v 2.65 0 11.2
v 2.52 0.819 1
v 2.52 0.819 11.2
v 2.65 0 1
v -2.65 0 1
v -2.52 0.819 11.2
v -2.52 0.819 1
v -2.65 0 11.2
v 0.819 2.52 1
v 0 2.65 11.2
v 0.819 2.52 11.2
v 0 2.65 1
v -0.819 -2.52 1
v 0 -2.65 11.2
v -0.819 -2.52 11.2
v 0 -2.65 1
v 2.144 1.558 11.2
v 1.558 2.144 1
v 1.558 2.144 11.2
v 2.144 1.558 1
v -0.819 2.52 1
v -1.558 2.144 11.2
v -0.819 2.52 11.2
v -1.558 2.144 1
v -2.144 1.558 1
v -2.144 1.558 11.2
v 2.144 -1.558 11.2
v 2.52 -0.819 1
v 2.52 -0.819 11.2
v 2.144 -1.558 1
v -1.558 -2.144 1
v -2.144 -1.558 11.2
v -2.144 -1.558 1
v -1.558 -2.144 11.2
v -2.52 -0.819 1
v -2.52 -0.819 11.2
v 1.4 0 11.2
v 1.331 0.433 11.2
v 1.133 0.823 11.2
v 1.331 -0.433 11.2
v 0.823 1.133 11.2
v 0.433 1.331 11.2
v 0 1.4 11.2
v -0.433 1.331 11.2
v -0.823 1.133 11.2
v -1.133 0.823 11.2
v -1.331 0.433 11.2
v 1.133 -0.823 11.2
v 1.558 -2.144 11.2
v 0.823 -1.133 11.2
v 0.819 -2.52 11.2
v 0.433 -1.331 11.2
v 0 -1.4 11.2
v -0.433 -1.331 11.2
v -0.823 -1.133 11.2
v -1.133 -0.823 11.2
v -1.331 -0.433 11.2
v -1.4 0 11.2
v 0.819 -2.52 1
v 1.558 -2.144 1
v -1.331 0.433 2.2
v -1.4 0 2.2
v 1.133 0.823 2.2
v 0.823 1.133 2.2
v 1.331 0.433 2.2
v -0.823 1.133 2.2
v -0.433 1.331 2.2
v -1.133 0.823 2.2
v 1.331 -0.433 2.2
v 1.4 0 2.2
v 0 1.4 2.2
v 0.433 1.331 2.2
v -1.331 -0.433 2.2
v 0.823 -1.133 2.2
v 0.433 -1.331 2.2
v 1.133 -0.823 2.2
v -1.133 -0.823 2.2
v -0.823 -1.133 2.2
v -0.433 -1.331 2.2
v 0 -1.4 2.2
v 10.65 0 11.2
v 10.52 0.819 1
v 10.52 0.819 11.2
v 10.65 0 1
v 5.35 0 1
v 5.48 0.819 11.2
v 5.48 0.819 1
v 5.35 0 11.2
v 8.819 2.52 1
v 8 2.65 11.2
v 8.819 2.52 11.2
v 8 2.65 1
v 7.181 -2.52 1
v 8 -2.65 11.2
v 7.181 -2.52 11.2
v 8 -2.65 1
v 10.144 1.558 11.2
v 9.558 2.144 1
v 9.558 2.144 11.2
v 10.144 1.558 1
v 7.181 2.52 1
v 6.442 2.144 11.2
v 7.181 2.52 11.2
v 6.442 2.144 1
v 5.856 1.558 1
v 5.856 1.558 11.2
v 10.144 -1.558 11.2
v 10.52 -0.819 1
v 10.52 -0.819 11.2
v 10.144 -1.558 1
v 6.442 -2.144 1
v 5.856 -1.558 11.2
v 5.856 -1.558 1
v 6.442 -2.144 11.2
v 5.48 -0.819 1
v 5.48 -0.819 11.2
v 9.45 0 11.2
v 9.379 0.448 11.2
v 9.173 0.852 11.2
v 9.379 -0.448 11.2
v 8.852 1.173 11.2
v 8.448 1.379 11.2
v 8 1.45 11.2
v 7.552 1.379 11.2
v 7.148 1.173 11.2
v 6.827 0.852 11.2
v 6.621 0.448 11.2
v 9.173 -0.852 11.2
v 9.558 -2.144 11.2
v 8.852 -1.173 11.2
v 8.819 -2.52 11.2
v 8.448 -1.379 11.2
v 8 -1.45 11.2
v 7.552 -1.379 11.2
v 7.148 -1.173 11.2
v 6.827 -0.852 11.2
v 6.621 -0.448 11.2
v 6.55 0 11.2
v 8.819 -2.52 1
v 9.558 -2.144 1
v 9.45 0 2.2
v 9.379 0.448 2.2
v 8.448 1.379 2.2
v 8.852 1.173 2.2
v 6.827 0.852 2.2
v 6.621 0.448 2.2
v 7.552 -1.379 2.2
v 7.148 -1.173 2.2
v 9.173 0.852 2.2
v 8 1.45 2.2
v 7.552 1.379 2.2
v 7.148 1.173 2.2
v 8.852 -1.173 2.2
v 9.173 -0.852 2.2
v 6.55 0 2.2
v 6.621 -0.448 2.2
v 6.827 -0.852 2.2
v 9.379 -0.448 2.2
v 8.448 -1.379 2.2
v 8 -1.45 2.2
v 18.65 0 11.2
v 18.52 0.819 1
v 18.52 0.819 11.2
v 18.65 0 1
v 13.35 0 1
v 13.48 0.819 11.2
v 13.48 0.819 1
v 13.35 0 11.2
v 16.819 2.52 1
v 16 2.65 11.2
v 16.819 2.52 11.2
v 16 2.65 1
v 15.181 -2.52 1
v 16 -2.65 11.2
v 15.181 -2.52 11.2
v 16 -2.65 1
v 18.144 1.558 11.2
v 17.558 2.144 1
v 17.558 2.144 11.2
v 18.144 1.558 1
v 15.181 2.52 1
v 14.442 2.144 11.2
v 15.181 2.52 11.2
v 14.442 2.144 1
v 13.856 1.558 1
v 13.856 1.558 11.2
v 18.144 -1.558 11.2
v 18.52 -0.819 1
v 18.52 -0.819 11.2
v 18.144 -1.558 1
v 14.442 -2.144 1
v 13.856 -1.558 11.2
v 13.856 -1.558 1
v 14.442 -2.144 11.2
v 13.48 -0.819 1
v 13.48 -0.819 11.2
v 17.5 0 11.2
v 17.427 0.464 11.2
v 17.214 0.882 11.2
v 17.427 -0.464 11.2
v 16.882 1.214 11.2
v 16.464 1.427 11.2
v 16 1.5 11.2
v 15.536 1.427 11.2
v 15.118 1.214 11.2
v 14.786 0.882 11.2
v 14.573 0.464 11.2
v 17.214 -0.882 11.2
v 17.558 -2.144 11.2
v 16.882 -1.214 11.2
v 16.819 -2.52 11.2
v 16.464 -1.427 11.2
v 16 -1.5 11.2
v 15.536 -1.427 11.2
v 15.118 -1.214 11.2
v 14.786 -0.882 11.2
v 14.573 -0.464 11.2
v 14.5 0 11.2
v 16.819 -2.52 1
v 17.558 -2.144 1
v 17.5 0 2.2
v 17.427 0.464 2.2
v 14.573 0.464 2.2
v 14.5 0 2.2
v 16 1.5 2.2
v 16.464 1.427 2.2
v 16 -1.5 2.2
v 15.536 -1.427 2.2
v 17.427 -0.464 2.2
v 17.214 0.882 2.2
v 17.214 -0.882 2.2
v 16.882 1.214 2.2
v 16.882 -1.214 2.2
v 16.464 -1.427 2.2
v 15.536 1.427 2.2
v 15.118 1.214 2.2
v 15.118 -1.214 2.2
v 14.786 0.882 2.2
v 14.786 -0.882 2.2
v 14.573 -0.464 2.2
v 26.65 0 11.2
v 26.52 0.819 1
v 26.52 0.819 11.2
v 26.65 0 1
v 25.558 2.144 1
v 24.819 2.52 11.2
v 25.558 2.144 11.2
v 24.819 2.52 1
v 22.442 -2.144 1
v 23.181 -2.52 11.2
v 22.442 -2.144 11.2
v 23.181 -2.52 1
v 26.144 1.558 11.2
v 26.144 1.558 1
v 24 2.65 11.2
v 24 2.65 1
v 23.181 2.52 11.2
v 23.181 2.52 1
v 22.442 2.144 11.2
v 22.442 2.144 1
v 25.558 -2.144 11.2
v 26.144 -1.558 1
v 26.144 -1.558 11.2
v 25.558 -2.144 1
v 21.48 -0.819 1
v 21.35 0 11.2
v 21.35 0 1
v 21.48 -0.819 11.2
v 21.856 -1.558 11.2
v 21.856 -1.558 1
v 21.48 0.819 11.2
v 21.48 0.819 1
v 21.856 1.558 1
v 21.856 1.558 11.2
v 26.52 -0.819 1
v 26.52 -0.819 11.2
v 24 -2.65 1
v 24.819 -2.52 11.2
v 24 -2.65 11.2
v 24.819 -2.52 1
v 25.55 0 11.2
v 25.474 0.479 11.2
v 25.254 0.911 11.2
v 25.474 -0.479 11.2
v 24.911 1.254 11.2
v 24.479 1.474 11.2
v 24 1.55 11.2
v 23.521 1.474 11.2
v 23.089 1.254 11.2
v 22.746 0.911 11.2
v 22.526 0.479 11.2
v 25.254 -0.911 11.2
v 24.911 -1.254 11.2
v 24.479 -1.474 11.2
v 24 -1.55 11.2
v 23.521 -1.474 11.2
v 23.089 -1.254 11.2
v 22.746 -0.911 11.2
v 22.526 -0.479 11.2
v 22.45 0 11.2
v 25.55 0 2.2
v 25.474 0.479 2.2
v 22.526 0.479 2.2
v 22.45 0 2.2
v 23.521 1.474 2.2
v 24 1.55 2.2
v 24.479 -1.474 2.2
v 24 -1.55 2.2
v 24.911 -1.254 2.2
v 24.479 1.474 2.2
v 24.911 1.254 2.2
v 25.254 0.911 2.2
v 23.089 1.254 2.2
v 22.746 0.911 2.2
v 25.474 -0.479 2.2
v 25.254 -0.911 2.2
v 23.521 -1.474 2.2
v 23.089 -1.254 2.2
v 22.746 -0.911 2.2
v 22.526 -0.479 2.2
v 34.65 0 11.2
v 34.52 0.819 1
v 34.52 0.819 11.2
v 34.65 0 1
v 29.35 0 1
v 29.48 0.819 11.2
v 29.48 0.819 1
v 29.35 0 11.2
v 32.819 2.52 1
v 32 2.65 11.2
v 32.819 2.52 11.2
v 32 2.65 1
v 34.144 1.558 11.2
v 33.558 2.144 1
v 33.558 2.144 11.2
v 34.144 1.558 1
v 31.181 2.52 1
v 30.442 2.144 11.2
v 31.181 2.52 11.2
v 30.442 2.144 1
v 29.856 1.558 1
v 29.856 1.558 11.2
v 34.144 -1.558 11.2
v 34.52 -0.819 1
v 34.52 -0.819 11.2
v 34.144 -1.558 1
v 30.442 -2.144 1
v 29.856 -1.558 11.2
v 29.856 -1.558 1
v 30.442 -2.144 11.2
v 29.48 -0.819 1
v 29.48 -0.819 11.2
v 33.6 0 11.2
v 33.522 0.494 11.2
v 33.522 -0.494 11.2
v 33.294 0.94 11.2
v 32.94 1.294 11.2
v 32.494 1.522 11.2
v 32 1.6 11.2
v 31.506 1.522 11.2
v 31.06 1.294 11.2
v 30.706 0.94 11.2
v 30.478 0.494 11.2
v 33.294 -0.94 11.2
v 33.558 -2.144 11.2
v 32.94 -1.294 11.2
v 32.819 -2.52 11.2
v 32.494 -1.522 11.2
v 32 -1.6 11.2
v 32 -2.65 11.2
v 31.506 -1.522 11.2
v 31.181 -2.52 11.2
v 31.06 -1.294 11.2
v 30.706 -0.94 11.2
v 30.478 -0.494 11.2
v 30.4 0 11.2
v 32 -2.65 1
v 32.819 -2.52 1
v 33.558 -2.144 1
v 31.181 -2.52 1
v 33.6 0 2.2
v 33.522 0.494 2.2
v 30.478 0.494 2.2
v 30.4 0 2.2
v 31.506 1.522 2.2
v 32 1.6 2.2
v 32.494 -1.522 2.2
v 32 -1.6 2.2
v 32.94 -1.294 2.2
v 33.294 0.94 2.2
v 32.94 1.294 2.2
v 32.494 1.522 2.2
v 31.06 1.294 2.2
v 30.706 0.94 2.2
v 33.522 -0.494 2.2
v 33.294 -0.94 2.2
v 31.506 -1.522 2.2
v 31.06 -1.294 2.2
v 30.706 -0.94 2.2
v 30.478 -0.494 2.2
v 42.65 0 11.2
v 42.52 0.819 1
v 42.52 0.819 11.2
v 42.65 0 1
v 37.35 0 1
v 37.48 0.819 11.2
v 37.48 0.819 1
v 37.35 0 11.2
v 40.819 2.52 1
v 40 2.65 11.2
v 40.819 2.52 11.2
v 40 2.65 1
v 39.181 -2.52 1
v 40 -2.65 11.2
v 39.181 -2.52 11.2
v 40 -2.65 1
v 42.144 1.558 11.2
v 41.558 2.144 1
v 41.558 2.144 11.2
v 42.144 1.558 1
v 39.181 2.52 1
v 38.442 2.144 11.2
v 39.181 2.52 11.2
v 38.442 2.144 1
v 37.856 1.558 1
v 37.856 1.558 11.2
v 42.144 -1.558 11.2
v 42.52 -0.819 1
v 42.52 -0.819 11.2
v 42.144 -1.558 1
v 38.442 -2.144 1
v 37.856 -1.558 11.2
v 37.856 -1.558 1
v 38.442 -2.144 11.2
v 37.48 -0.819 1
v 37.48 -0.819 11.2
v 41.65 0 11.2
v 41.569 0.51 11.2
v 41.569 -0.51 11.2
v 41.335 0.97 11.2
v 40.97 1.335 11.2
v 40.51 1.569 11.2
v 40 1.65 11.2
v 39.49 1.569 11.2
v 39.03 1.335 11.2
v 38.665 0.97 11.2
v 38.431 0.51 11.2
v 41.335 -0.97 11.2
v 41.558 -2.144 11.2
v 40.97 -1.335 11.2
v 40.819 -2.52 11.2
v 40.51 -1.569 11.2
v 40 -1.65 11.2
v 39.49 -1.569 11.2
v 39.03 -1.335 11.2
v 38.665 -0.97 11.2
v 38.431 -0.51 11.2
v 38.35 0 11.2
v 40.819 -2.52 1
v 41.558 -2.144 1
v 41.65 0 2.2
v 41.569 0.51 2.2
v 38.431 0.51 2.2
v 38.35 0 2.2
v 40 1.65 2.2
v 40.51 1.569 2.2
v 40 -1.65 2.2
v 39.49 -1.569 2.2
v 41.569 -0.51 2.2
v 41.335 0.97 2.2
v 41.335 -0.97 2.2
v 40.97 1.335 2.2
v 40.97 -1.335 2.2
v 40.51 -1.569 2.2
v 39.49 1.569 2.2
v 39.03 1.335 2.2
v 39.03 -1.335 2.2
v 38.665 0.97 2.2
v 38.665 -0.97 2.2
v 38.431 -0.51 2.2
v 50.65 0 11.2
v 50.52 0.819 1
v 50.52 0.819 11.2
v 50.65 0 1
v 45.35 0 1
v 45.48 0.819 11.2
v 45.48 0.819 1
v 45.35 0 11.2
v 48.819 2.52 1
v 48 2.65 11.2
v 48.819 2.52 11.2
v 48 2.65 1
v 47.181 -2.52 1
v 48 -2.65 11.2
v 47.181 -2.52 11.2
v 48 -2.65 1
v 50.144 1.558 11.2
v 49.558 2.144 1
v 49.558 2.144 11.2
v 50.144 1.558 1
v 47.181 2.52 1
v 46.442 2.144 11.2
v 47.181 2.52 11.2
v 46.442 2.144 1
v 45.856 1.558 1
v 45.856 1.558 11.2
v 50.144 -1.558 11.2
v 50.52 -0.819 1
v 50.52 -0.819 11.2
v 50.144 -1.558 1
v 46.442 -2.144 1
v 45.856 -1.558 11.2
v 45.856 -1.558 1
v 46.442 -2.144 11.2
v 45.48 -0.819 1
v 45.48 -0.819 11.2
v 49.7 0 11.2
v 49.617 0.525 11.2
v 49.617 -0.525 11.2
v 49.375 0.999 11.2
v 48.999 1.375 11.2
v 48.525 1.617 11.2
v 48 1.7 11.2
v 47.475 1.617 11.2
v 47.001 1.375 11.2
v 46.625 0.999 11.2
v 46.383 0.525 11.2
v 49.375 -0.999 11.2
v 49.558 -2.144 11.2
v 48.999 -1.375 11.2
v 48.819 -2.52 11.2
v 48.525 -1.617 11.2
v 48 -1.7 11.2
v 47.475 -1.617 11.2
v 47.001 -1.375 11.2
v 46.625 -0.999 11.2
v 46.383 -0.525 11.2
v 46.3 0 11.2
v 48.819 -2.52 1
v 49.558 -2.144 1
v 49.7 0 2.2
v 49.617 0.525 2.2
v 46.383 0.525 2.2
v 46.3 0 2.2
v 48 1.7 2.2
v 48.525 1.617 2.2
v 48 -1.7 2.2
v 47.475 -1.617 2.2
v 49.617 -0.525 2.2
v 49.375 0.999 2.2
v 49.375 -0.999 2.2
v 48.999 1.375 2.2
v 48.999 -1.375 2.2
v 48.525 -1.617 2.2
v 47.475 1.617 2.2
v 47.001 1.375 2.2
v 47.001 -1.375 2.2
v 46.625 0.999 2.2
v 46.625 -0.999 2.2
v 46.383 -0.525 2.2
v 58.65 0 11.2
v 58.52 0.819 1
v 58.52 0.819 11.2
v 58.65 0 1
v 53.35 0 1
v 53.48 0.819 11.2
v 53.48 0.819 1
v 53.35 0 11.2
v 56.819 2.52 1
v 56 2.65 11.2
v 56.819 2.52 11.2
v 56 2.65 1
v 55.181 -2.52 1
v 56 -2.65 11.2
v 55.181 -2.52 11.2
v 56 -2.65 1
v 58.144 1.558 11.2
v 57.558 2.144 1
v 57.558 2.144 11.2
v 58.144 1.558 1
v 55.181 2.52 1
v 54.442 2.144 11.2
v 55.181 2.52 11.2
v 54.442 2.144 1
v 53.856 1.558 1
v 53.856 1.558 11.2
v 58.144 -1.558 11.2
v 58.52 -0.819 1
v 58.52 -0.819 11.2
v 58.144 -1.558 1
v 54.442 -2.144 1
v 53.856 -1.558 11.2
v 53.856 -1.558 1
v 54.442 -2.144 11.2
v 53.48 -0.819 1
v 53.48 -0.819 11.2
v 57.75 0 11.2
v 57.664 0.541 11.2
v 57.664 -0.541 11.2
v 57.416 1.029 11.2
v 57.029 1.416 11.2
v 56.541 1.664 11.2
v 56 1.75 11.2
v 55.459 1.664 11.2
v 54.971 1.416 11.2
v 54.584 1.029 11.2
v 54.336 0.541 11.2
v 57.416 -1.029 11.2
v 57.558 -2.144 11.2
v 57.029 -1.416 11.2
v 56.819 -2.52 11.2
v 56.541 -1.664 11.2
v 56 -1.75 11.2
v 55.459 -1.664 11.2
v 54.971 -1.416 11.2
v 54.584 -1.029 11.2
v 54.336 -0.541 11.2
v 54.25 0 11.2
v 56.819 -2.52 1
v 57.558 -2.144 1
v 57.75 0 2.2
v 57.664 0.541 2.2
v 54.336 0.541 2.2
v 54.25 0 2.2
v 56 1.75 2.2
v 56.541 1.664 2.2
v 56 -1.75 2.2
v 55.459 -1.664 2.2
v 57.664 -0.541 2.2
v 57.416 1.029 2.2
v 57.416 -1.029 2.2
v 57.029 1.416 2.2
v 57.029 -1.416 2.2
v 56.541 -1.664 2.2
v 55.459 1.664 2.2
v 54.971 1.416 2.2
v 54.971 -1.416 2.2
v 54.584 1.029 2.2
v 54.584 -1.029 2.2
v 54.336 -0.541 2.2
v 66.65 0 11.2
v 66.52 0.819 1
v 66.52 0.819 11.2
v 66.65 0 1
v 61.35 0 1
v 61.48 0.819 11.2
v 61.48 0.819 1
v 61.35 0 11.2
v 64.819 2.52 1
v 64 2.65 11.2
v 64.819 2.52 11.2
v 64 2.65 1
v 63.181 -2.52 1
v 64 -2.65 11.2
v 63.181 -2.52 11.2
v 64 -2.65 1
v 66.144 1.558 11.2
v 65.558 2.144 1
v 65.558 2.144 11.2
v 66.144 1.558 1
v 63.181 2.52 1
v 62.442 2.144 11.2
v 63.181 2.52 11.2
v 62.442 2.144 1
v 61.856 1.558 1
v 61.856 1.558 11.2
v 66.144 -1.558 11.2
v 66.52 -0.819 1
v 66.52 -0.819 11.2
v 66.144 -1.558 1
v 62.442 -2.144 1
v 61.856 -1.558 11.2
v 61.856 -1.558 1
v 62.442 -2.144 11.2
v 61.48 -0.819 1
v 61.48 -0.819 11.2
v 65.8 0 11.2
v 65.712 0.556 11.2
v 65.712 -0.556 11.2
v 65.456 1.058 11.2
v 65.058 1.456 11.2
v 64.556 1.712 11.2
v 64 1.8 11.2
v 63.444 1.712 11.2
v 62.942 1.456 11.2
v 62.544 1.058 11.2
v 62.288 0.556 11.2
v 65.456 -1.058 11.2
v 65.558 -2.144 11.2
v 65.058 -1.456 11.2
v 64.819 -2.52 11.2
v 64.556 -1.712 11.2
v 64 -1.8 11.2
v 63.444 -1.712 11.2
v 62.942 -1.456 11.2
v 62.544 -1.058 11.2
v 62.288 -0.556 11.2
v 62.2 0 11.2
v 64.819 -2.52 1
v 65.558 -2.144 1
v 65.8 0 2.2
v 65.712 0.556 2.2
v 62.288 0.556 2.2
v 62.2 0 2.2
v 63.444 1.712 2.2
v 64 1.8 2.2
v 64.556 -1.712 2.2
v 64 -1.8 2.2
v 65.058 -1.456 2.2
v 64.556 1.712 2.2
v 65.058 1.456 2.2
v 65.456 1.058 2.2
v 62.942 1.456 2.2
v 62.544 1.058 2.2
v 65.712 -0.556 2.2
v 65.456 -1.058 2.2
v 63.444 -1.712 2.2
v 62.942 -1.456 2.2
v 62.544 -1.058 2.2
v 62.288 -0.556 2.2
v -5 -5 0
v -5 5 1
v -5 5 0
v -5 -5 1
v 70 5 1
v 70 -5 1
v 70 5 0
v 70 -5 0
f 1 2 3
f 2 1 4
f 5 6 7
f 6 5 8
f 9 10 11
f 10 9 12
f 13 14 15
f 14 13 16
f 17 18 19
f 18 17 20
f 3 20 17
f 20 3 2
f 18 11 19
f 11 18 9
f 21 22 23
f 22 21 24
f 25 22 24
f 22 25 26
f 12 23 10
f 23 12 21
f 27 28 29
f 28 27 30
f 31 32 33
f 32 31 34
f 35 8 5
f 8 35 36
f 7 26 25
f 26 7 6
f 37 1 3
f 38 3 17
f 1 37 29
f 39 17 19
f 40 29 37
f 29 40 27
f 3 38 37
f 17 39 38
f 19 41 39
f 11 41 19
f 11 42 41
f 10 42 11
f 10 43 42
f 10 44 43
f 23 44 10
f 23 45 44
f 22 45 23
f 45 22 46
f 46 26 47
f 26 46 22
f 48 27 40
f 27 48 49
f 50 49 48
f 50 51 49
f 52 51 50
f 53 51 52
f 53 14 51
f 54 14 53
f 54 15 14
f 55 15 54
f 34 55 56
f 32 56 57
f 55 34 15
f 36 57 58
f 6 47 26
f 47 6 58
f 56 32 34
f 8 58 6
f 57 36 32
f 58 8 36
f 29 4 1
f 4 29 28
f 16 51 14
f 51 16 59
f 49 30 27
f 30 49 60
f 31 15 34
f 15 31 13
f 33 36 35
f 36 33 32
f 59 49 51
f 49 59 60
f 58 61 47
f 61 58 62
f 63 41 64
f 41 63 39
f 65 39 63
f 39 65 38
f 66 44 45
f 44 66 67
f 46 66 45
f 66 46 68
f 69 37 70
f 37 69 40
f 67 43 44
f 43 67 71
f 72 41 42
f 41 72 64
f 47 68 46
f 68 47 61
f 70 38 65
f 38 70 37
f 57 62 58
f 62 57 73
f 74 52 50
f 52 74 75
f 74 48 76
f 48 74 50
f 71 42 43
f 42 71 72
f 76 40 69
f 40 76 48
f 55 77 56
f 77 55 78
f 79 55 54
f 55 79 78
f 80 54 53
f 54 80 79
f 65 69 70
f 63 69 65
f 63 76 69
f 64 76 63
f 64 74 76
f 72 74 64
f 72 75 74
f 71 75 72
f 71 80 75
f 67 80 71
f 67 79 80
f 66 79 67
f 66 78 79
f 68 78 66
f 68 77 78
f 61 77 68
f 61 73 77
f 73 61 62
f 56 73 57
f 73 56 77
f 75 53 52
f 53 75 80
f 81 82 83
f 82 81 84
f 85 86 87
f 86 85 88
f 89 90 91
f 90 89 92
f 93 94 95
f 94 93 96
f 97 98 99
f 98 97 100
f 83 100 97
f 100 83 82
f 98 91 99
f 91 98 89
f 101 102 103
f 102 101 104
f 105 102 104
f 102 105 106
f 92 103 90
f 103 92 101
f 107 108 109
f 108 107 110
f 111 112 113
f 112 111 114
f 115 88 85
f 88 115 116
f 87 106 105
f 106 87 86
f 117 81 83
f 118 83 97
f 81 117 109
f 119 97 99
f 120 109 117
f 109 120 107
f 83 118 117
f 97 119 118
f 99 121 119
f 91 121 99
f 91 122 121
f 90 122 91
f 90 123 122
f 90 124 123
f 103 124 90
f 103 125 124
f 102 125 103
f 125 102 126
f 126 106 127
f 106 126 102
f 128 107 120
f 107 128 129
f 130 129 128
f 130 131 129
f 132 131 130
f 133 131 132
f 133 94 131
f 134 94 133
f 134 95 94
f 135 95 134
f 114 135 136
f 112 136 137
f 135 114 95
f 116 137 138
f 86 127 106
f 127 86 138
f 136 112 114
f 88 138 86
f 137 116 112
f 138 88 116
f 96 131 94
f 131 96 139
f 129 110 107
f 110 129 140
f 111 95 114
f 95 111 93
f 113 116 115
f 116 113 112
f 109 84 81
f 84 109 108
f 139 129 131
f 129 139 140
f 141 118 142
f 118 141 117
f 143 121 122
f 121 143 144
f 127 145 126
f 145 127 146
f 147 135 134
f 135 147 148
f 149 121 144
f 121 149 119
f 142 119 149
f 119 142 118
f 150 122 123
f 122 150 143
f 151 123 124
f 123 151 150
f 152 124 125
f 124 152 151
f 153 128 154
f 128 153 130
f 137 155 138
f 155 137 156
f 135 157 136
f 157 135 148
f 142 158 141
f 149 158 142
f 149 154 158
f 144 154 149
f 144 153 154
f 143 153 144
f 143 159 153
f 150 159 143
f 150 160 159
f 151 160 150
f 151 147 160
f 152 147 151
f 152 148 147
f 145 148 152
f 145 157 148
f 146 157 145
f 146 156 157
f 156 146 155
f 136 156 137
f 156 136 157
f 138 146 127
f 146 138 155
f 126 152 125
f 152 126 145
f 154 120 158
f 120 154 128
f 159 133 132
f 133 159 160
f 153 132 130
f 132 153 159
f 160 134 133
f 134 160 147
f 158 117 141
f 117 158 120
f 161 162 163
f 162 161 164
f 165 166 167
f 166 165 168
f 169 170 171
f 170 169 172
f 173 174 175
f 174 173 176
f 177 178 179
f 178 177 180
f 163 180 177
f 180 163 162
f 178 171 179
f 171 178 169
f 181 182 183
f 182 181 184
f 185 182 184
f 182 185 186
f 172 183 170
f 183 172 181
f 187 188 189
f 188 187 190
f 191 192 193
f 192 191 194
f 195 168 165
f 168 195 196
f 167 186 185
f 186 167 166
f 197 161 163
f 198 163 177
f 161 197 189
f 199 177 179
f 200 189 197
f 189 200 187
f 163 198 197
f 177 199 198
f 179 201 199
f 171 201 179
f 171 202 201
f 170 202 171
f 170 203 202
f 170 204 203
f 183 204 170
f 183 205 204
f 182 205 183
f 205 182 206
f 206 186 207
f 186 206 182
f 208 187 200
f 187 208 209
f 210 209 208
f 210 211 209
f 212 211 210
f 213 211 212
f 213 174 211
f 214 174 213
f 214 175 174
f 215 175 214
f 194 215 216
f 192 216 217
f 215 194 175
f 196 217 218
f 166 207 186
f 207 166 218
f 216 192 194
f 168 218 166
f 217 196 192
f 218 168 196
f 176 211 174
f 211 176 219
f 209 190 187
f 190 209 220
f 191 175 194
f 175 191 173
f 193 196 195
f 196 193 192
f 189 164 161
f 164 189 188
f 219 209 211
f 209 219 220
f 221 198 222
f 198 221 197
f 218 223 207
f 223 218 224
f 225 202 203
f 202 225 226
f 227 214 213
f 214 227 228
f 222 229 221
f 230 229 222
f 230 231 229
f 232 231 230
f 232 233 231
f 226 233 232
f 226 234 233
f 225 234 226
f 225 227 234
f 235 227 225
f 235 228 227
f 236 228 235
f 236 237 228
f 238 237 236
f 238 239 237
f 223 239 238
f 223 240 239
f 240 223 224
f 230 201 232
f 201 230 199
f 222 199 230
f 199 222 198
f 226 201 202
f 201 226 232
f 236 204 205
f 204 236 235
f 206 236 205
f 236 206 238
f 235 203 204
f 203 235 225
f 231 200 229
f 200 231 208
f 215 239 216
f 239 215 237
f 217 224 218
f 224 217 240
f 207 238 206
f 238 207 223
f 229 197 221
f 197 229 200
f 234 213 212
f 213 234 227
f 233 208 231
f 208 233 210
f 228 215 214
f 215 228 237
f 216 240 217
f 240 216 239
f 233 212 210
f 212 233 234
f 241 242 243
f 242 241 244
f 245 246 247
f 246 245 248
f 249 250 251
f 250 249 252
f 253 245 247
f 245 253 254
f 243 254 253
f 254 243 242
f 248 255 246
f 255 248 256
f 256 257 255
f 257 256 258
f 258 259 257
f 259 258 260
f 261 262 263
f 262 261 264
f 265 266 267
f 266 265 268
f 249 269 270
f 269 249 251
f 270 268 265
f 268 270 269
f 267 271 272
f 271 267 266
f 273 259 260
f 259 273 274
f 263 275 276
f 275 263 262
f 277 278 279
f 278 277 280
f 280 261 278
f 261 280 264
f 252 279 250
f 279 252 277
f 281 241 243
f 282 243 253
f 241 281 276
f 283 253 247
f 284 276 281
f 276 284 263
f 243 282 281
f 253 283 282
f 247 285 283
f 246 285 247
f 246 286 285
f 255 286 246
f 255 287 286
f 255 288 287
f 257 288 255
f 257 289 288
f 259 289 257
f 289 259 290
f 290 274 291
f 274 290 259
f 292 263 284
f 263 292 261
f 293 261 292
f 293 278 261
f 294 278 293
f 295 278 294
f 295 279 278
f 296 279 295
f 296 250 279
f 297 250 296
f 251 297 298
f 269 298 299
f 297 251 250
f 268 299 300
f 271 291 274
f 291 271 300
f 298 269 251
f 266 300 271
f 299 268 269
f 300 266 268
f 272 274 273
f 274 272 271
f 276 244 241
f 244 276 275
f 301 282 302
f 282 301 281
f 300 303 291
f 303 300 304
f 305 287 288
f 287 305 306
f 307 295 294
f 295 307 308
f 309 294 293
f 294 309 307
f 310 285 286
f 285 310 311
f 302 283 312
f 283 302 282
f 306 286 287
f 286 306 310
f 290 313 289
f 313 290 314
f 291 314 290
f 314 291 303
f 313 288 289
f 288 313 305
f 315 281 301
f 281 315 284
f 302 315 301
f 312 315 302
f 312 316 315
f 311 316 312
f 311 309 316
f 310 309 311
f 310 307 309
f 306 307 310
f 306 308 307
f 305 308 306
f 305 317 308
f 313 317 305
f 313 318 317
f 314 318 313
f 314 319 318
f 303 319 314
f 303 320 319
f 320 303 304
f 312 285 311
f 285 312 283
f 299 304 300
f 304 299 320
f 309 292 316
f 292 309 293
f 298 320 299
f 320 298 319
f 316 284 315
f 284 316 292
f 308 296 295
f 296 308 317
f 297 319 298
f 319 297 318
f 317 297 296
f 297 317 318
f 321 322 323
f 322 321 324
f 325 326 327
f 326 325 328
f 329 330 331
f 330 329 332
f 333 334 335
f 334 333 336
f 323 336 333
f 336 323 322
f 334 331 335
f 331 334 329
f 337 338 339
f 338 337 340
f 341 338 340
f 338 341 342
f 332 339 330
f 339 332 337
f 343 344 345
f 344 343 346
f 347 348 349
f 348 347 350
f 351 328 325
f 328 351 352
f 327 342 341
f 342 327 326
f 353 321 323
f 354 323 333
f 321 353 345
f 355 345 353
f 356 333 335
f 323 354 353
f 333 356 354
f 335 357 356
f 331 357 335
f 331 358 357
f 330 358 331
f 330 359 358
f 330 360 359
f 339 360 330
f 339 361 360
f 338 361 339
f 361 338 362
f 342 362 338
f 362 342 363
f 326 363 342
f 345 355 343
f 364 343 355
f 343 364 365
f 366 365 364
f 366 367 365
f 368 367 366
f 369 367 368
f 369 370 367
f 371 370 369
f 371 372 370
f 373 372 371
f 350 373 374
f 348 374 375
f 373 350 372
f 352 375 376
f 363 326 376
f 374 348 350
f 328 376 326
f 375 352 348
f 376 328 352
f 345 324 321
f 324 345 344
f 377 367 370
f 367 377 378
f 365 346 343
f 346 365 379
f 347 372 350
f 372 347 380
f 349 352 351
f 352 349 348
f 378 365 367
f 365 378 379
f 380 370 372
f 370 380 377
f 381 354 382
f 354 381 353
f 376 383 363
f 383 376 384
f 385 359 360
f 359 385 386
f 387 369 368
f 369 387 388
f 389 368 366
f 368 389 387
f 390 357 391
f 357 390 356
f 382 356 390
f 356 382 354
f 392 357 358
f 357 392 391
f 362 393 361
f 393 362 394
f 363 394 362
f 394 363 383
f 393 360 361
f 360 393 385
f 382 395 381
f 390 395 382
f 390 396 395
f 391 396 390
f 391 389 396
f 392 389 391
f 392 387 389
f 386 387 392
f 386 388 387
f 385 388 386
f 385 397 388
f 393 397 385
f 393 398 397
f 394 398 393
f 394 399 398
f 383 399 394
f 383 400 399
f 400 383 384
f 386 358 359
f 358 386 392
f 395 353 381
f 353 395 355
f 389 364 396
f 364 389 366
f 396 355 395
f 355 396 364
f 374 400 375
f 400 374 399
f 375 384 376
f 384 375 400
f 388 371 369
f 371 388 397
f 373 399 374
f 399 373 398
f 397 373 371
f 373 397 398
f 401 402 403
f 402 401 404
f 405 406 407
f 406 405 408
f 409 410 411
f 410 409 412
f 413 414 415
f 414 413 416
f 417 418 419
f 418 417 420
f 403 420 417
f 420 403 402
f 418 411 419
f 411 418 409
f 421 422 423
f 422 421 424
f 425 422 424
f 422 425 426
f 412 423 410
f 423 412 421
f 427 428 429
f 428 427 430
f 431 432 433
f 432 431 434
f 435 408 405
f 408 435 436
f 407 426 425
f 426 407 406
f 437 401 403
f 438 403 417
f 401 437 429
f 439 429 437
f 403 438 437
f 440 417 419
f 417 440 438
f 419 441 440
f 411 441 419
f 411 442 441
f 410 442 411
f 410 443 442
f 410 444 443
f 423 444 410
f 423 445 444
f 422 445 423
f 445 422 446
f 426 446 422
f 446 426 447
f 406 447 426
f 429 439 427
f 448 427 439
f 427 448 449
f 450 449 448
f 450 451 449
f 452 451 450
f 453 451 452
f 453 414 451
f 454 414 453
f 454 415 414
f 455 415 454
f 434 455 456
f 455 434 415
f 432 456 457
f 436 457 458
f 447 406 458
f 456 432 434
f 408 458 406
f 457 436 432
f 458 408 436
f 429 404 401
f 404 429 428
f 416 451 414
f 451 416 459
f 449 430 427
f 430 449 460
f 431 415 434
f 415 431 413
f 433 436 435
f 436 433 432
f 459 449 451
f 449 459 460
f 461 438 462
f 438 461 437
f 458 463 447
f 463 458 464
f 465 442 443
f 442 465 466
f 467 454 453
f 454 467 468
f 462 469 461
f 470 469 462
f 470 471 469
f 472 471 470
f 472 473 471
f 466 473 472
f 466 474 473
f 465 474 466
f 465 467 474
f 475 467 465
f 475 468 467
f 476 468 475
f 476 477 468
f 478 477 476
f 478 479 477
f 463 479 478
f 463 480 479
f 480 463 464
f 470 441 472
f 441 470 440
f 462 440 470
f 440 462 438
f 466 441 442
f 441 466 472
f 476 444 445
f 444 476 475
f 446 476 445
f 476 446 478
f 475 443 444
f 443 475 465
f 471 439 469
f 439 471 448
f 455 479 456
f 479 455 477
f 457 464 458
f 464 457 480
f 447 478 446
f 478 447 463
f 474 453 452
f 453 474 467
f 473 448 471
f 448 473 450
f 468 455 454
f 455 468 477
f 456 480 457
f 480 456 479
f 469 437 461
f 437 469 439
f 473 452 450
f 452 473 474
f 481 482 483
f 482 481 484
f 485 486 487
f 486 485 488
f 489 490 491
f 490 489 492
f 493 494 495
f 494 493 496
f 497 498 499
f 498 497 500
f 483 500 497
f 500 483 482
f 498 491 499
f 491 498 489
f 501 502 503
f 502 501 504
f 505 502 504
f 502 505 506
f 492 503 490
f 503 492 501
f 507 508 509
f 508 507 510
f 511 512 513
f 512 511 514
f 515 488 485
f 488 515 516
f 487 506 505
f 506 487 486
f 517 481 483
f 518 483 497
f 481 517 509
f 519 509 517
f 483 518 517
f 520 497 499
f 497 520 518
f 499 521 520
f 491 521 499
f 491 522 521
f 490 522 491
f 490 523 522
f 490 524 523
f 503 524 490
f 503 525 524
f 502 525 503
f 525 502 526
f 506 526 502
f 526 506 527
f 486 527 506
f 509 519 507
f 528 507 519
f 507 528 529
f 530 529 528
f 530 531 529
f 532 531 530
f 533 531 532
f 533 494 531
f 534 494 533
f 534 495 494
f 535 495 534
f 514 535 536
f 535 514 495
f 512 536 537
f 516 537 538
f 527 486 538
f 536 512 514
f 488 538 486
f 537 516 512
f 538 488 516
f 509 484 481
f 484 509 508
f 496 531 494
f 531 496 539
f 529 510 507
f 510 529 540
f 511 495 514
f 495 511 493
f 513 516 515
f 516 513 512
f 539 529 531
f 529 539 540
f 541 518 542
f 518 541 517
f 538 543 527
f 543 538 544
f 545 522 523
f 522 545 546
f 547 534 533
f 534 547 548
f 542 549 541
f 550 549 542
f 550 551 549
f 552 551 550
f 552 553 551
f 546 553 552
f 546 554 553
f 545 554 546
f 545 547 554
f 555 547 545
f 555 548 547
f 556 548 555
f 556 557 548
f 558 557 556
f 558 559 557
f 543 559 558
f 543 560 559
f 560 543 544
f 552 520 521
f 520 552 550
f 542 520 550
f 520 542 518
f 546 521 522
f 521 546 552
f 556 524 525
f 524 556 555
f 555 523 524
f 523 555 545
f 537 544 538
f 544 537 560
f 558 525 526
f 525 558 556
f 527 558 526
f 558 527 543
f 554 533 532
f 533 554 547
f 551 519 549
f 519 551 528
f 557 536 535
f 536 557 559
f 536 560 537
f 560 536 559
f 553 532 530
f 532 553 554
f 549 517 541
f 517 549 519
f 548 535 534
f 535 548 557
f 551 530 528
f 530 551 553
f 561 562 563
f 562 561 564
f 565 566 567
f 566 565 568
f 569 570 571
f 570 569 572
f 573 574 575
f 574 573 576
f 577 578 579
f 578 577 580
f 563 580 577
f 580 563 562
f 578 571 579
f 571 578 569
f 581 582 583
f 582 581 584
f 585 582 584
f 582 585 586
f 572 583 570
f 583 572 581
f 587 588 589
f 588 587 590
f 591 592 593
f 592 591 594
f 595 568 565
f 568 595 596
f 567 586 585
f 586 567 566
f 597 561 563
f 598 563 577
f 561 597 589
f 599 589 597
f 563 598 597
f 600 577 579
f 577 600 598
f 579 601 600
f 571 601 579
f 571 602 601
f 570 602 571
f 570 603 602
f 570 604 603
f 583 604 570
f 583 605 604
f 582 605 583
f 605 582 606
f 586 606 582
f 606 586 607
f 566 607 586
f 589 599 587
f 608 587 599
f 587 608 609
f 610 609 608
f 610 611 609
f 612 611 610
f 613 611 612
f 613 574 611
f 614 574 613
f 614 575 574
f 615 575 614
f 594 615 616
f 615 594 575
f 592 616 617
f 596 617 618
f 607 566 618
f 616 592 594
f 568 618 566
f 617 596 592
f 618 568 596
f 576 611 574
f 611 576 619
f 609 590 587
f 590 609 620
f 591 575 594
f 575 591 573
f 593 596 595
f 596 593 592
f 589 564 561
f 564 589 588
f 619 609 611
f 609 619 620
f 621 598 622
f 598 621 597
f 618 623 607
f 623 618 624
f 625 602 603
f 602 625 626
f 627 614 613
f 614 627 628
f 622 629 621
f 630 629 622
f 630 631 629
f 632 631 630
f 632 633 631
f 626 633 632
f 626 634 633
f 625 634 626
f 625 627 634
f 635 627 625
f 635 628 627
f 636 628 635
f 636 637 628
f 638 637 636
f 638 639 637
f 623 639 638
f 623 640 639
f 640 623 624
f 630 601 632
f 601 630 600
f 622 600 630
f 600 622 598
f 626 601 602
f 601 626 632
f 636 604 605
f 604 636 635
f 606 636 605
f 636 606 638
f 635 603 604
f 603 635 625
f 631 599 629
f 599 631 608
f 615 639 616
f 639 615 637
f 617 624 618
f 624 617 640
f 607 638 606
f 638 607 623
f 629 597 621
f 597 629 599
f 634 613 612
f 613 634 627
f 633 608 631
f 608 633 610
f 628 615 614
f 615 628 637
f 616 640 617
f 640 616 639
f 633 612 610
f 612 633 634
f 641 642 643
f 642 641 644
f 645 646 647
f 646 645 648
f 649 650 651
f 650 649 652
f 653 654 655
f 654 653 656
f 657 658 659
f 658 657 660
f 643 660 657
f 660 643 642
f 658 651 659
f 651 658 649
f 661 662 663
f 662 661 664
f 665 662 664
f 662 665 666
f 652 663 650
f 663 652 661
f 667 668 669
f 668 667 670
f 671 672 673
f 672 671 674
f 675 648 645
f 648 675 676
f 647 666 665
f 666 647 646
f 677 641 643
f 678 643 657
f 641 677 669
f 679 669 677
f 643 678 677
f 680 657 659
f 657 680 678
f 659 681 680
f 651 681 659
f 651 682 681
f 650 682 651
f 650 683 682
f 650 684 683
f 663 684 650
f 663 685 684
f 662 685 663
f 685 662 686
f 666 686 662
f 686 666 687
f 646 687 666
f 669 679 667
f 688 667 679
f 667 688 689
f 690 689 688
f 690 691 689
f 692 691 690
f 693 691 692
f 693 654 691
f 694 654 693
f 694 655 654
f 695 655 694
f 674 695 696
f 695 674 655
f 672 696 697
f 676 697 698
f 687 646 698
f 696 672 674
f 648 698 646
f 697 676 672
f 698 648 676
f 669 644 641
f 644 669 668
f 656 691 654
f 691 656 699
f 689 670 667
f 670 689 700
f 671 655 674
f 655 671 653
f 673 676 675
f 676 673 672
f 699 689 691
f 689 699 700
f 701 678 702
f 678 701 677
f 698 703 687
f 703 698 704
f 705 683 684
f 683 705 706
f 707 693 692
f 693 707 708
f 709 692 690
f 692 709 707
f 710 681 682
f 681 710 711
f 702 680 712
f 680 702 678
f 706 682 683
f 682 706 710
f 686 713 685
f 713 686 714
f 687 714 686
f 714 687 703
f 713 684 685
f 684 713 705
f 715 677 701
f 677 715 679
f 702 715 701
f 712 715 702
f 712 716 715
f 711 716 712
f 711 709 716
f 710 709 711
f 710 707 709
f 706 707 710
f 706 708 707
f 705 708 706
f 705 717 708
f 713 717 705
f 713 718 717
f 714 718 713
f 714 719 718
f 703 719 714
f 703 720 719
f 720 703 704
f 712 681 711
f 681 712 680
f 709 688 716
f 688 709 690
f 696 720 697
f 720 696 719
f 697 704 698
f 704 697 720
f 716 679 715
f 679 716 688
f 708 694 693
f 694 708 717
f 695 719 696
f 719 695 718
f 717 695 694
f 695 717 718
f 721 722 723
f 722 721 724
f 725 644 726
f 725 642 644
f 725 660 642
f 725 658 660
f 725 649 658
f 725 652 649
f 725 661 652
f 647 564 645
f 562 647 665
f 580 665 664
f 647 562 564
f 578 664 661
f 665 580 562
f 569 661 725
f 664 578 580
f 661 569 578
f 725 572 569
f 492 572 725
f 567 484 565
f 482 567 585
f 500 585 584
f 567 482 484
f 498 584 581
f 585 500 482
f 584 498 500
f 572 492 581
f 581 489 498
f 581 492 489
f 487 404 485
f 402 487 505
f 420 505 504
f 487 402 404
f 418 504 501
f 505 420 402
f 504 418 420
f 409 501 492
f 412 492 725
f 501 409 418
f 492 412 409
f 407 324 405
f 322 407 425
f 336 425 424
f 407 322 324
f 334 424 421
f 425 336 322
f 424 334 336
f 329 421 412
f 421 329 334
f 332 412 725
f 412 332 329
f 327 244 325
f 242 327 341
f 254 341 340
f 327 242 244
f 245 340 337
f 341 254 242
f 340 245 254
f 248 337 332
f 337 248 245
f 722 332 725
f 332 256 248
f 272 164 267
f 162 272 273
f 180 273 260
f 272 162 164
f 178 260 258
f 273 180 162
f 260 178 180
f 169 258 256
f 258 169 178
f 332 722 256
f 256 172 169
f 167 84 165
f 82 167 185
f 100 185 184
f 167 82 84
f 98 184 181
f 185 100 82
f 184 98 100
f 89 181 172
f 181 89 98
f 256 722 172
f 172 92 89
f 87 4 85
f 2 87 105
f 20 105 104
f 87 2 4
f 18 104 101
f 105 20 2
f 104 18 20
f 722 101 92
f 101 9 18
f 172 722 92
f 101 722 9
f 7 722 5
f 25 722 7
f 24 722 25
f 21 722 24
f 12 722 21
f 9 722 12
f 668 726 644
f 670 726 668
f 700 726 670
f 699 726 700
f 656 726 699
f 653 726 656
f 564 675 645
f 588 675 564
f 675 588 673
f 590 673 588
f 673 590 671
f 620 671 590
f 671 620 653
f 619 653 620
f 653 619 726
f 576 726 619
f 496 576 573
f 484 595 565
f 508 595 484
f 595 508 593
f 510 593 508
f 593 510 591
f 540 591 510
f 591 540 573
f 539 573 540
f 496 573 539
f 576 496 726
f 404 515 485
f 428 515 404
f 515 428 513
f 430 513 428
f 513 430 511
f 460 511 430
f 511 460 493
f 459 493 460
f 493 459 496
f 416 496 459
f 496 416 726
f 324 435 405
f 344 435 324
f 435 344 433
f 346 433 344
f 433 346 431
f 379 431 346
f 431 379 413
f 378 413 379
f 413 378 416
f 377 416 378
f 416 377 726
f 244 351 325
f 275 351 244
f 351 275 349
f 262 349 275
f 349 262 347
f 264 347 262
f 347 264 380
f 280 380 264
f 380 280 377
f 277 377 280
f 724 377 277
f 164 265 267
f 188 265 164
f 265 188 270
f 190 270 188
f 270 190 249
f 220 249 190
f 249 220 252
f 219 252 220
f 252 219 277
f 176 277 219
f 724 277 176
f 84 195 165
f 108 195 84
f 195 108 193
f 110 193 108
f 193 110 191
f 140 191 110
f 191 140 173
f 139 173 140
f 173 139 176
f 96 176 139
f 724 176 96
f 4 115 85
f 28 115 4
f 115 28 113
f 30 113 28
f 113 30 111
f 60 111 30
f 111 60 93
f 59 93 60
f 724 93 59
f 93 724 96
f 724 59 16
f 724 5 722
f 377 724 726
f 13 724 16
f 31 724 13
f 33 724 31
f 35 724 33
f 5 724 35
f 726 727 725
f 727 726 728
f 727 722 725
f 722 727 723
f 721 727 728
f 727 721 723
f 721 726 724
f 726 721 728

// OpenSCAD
h = 18;      // Výška horní části

c = 0.8;   // Tloušťka stěn

vt = h-6-c; // Výška trubek
po = 2.8; // Nejmenší vnitří průměr trubky
pt = po + 2.5; //Vnější průměr trubky

$fn=20;

union(){

    for (k = [0 : 8]) {
        translate([k*8, 0, vt/2])
            difference() {
                cylinder(vt, pt/2, pt/2, center = true);
                translate([0, 0, vt/2])
                    cylinder(18, (po+k*0.1)/2, (po+k*0.1)/2, center = true); 
            }
    }
    translate([-5, -5, 0])
        cube([75, 10, 1]);
}
